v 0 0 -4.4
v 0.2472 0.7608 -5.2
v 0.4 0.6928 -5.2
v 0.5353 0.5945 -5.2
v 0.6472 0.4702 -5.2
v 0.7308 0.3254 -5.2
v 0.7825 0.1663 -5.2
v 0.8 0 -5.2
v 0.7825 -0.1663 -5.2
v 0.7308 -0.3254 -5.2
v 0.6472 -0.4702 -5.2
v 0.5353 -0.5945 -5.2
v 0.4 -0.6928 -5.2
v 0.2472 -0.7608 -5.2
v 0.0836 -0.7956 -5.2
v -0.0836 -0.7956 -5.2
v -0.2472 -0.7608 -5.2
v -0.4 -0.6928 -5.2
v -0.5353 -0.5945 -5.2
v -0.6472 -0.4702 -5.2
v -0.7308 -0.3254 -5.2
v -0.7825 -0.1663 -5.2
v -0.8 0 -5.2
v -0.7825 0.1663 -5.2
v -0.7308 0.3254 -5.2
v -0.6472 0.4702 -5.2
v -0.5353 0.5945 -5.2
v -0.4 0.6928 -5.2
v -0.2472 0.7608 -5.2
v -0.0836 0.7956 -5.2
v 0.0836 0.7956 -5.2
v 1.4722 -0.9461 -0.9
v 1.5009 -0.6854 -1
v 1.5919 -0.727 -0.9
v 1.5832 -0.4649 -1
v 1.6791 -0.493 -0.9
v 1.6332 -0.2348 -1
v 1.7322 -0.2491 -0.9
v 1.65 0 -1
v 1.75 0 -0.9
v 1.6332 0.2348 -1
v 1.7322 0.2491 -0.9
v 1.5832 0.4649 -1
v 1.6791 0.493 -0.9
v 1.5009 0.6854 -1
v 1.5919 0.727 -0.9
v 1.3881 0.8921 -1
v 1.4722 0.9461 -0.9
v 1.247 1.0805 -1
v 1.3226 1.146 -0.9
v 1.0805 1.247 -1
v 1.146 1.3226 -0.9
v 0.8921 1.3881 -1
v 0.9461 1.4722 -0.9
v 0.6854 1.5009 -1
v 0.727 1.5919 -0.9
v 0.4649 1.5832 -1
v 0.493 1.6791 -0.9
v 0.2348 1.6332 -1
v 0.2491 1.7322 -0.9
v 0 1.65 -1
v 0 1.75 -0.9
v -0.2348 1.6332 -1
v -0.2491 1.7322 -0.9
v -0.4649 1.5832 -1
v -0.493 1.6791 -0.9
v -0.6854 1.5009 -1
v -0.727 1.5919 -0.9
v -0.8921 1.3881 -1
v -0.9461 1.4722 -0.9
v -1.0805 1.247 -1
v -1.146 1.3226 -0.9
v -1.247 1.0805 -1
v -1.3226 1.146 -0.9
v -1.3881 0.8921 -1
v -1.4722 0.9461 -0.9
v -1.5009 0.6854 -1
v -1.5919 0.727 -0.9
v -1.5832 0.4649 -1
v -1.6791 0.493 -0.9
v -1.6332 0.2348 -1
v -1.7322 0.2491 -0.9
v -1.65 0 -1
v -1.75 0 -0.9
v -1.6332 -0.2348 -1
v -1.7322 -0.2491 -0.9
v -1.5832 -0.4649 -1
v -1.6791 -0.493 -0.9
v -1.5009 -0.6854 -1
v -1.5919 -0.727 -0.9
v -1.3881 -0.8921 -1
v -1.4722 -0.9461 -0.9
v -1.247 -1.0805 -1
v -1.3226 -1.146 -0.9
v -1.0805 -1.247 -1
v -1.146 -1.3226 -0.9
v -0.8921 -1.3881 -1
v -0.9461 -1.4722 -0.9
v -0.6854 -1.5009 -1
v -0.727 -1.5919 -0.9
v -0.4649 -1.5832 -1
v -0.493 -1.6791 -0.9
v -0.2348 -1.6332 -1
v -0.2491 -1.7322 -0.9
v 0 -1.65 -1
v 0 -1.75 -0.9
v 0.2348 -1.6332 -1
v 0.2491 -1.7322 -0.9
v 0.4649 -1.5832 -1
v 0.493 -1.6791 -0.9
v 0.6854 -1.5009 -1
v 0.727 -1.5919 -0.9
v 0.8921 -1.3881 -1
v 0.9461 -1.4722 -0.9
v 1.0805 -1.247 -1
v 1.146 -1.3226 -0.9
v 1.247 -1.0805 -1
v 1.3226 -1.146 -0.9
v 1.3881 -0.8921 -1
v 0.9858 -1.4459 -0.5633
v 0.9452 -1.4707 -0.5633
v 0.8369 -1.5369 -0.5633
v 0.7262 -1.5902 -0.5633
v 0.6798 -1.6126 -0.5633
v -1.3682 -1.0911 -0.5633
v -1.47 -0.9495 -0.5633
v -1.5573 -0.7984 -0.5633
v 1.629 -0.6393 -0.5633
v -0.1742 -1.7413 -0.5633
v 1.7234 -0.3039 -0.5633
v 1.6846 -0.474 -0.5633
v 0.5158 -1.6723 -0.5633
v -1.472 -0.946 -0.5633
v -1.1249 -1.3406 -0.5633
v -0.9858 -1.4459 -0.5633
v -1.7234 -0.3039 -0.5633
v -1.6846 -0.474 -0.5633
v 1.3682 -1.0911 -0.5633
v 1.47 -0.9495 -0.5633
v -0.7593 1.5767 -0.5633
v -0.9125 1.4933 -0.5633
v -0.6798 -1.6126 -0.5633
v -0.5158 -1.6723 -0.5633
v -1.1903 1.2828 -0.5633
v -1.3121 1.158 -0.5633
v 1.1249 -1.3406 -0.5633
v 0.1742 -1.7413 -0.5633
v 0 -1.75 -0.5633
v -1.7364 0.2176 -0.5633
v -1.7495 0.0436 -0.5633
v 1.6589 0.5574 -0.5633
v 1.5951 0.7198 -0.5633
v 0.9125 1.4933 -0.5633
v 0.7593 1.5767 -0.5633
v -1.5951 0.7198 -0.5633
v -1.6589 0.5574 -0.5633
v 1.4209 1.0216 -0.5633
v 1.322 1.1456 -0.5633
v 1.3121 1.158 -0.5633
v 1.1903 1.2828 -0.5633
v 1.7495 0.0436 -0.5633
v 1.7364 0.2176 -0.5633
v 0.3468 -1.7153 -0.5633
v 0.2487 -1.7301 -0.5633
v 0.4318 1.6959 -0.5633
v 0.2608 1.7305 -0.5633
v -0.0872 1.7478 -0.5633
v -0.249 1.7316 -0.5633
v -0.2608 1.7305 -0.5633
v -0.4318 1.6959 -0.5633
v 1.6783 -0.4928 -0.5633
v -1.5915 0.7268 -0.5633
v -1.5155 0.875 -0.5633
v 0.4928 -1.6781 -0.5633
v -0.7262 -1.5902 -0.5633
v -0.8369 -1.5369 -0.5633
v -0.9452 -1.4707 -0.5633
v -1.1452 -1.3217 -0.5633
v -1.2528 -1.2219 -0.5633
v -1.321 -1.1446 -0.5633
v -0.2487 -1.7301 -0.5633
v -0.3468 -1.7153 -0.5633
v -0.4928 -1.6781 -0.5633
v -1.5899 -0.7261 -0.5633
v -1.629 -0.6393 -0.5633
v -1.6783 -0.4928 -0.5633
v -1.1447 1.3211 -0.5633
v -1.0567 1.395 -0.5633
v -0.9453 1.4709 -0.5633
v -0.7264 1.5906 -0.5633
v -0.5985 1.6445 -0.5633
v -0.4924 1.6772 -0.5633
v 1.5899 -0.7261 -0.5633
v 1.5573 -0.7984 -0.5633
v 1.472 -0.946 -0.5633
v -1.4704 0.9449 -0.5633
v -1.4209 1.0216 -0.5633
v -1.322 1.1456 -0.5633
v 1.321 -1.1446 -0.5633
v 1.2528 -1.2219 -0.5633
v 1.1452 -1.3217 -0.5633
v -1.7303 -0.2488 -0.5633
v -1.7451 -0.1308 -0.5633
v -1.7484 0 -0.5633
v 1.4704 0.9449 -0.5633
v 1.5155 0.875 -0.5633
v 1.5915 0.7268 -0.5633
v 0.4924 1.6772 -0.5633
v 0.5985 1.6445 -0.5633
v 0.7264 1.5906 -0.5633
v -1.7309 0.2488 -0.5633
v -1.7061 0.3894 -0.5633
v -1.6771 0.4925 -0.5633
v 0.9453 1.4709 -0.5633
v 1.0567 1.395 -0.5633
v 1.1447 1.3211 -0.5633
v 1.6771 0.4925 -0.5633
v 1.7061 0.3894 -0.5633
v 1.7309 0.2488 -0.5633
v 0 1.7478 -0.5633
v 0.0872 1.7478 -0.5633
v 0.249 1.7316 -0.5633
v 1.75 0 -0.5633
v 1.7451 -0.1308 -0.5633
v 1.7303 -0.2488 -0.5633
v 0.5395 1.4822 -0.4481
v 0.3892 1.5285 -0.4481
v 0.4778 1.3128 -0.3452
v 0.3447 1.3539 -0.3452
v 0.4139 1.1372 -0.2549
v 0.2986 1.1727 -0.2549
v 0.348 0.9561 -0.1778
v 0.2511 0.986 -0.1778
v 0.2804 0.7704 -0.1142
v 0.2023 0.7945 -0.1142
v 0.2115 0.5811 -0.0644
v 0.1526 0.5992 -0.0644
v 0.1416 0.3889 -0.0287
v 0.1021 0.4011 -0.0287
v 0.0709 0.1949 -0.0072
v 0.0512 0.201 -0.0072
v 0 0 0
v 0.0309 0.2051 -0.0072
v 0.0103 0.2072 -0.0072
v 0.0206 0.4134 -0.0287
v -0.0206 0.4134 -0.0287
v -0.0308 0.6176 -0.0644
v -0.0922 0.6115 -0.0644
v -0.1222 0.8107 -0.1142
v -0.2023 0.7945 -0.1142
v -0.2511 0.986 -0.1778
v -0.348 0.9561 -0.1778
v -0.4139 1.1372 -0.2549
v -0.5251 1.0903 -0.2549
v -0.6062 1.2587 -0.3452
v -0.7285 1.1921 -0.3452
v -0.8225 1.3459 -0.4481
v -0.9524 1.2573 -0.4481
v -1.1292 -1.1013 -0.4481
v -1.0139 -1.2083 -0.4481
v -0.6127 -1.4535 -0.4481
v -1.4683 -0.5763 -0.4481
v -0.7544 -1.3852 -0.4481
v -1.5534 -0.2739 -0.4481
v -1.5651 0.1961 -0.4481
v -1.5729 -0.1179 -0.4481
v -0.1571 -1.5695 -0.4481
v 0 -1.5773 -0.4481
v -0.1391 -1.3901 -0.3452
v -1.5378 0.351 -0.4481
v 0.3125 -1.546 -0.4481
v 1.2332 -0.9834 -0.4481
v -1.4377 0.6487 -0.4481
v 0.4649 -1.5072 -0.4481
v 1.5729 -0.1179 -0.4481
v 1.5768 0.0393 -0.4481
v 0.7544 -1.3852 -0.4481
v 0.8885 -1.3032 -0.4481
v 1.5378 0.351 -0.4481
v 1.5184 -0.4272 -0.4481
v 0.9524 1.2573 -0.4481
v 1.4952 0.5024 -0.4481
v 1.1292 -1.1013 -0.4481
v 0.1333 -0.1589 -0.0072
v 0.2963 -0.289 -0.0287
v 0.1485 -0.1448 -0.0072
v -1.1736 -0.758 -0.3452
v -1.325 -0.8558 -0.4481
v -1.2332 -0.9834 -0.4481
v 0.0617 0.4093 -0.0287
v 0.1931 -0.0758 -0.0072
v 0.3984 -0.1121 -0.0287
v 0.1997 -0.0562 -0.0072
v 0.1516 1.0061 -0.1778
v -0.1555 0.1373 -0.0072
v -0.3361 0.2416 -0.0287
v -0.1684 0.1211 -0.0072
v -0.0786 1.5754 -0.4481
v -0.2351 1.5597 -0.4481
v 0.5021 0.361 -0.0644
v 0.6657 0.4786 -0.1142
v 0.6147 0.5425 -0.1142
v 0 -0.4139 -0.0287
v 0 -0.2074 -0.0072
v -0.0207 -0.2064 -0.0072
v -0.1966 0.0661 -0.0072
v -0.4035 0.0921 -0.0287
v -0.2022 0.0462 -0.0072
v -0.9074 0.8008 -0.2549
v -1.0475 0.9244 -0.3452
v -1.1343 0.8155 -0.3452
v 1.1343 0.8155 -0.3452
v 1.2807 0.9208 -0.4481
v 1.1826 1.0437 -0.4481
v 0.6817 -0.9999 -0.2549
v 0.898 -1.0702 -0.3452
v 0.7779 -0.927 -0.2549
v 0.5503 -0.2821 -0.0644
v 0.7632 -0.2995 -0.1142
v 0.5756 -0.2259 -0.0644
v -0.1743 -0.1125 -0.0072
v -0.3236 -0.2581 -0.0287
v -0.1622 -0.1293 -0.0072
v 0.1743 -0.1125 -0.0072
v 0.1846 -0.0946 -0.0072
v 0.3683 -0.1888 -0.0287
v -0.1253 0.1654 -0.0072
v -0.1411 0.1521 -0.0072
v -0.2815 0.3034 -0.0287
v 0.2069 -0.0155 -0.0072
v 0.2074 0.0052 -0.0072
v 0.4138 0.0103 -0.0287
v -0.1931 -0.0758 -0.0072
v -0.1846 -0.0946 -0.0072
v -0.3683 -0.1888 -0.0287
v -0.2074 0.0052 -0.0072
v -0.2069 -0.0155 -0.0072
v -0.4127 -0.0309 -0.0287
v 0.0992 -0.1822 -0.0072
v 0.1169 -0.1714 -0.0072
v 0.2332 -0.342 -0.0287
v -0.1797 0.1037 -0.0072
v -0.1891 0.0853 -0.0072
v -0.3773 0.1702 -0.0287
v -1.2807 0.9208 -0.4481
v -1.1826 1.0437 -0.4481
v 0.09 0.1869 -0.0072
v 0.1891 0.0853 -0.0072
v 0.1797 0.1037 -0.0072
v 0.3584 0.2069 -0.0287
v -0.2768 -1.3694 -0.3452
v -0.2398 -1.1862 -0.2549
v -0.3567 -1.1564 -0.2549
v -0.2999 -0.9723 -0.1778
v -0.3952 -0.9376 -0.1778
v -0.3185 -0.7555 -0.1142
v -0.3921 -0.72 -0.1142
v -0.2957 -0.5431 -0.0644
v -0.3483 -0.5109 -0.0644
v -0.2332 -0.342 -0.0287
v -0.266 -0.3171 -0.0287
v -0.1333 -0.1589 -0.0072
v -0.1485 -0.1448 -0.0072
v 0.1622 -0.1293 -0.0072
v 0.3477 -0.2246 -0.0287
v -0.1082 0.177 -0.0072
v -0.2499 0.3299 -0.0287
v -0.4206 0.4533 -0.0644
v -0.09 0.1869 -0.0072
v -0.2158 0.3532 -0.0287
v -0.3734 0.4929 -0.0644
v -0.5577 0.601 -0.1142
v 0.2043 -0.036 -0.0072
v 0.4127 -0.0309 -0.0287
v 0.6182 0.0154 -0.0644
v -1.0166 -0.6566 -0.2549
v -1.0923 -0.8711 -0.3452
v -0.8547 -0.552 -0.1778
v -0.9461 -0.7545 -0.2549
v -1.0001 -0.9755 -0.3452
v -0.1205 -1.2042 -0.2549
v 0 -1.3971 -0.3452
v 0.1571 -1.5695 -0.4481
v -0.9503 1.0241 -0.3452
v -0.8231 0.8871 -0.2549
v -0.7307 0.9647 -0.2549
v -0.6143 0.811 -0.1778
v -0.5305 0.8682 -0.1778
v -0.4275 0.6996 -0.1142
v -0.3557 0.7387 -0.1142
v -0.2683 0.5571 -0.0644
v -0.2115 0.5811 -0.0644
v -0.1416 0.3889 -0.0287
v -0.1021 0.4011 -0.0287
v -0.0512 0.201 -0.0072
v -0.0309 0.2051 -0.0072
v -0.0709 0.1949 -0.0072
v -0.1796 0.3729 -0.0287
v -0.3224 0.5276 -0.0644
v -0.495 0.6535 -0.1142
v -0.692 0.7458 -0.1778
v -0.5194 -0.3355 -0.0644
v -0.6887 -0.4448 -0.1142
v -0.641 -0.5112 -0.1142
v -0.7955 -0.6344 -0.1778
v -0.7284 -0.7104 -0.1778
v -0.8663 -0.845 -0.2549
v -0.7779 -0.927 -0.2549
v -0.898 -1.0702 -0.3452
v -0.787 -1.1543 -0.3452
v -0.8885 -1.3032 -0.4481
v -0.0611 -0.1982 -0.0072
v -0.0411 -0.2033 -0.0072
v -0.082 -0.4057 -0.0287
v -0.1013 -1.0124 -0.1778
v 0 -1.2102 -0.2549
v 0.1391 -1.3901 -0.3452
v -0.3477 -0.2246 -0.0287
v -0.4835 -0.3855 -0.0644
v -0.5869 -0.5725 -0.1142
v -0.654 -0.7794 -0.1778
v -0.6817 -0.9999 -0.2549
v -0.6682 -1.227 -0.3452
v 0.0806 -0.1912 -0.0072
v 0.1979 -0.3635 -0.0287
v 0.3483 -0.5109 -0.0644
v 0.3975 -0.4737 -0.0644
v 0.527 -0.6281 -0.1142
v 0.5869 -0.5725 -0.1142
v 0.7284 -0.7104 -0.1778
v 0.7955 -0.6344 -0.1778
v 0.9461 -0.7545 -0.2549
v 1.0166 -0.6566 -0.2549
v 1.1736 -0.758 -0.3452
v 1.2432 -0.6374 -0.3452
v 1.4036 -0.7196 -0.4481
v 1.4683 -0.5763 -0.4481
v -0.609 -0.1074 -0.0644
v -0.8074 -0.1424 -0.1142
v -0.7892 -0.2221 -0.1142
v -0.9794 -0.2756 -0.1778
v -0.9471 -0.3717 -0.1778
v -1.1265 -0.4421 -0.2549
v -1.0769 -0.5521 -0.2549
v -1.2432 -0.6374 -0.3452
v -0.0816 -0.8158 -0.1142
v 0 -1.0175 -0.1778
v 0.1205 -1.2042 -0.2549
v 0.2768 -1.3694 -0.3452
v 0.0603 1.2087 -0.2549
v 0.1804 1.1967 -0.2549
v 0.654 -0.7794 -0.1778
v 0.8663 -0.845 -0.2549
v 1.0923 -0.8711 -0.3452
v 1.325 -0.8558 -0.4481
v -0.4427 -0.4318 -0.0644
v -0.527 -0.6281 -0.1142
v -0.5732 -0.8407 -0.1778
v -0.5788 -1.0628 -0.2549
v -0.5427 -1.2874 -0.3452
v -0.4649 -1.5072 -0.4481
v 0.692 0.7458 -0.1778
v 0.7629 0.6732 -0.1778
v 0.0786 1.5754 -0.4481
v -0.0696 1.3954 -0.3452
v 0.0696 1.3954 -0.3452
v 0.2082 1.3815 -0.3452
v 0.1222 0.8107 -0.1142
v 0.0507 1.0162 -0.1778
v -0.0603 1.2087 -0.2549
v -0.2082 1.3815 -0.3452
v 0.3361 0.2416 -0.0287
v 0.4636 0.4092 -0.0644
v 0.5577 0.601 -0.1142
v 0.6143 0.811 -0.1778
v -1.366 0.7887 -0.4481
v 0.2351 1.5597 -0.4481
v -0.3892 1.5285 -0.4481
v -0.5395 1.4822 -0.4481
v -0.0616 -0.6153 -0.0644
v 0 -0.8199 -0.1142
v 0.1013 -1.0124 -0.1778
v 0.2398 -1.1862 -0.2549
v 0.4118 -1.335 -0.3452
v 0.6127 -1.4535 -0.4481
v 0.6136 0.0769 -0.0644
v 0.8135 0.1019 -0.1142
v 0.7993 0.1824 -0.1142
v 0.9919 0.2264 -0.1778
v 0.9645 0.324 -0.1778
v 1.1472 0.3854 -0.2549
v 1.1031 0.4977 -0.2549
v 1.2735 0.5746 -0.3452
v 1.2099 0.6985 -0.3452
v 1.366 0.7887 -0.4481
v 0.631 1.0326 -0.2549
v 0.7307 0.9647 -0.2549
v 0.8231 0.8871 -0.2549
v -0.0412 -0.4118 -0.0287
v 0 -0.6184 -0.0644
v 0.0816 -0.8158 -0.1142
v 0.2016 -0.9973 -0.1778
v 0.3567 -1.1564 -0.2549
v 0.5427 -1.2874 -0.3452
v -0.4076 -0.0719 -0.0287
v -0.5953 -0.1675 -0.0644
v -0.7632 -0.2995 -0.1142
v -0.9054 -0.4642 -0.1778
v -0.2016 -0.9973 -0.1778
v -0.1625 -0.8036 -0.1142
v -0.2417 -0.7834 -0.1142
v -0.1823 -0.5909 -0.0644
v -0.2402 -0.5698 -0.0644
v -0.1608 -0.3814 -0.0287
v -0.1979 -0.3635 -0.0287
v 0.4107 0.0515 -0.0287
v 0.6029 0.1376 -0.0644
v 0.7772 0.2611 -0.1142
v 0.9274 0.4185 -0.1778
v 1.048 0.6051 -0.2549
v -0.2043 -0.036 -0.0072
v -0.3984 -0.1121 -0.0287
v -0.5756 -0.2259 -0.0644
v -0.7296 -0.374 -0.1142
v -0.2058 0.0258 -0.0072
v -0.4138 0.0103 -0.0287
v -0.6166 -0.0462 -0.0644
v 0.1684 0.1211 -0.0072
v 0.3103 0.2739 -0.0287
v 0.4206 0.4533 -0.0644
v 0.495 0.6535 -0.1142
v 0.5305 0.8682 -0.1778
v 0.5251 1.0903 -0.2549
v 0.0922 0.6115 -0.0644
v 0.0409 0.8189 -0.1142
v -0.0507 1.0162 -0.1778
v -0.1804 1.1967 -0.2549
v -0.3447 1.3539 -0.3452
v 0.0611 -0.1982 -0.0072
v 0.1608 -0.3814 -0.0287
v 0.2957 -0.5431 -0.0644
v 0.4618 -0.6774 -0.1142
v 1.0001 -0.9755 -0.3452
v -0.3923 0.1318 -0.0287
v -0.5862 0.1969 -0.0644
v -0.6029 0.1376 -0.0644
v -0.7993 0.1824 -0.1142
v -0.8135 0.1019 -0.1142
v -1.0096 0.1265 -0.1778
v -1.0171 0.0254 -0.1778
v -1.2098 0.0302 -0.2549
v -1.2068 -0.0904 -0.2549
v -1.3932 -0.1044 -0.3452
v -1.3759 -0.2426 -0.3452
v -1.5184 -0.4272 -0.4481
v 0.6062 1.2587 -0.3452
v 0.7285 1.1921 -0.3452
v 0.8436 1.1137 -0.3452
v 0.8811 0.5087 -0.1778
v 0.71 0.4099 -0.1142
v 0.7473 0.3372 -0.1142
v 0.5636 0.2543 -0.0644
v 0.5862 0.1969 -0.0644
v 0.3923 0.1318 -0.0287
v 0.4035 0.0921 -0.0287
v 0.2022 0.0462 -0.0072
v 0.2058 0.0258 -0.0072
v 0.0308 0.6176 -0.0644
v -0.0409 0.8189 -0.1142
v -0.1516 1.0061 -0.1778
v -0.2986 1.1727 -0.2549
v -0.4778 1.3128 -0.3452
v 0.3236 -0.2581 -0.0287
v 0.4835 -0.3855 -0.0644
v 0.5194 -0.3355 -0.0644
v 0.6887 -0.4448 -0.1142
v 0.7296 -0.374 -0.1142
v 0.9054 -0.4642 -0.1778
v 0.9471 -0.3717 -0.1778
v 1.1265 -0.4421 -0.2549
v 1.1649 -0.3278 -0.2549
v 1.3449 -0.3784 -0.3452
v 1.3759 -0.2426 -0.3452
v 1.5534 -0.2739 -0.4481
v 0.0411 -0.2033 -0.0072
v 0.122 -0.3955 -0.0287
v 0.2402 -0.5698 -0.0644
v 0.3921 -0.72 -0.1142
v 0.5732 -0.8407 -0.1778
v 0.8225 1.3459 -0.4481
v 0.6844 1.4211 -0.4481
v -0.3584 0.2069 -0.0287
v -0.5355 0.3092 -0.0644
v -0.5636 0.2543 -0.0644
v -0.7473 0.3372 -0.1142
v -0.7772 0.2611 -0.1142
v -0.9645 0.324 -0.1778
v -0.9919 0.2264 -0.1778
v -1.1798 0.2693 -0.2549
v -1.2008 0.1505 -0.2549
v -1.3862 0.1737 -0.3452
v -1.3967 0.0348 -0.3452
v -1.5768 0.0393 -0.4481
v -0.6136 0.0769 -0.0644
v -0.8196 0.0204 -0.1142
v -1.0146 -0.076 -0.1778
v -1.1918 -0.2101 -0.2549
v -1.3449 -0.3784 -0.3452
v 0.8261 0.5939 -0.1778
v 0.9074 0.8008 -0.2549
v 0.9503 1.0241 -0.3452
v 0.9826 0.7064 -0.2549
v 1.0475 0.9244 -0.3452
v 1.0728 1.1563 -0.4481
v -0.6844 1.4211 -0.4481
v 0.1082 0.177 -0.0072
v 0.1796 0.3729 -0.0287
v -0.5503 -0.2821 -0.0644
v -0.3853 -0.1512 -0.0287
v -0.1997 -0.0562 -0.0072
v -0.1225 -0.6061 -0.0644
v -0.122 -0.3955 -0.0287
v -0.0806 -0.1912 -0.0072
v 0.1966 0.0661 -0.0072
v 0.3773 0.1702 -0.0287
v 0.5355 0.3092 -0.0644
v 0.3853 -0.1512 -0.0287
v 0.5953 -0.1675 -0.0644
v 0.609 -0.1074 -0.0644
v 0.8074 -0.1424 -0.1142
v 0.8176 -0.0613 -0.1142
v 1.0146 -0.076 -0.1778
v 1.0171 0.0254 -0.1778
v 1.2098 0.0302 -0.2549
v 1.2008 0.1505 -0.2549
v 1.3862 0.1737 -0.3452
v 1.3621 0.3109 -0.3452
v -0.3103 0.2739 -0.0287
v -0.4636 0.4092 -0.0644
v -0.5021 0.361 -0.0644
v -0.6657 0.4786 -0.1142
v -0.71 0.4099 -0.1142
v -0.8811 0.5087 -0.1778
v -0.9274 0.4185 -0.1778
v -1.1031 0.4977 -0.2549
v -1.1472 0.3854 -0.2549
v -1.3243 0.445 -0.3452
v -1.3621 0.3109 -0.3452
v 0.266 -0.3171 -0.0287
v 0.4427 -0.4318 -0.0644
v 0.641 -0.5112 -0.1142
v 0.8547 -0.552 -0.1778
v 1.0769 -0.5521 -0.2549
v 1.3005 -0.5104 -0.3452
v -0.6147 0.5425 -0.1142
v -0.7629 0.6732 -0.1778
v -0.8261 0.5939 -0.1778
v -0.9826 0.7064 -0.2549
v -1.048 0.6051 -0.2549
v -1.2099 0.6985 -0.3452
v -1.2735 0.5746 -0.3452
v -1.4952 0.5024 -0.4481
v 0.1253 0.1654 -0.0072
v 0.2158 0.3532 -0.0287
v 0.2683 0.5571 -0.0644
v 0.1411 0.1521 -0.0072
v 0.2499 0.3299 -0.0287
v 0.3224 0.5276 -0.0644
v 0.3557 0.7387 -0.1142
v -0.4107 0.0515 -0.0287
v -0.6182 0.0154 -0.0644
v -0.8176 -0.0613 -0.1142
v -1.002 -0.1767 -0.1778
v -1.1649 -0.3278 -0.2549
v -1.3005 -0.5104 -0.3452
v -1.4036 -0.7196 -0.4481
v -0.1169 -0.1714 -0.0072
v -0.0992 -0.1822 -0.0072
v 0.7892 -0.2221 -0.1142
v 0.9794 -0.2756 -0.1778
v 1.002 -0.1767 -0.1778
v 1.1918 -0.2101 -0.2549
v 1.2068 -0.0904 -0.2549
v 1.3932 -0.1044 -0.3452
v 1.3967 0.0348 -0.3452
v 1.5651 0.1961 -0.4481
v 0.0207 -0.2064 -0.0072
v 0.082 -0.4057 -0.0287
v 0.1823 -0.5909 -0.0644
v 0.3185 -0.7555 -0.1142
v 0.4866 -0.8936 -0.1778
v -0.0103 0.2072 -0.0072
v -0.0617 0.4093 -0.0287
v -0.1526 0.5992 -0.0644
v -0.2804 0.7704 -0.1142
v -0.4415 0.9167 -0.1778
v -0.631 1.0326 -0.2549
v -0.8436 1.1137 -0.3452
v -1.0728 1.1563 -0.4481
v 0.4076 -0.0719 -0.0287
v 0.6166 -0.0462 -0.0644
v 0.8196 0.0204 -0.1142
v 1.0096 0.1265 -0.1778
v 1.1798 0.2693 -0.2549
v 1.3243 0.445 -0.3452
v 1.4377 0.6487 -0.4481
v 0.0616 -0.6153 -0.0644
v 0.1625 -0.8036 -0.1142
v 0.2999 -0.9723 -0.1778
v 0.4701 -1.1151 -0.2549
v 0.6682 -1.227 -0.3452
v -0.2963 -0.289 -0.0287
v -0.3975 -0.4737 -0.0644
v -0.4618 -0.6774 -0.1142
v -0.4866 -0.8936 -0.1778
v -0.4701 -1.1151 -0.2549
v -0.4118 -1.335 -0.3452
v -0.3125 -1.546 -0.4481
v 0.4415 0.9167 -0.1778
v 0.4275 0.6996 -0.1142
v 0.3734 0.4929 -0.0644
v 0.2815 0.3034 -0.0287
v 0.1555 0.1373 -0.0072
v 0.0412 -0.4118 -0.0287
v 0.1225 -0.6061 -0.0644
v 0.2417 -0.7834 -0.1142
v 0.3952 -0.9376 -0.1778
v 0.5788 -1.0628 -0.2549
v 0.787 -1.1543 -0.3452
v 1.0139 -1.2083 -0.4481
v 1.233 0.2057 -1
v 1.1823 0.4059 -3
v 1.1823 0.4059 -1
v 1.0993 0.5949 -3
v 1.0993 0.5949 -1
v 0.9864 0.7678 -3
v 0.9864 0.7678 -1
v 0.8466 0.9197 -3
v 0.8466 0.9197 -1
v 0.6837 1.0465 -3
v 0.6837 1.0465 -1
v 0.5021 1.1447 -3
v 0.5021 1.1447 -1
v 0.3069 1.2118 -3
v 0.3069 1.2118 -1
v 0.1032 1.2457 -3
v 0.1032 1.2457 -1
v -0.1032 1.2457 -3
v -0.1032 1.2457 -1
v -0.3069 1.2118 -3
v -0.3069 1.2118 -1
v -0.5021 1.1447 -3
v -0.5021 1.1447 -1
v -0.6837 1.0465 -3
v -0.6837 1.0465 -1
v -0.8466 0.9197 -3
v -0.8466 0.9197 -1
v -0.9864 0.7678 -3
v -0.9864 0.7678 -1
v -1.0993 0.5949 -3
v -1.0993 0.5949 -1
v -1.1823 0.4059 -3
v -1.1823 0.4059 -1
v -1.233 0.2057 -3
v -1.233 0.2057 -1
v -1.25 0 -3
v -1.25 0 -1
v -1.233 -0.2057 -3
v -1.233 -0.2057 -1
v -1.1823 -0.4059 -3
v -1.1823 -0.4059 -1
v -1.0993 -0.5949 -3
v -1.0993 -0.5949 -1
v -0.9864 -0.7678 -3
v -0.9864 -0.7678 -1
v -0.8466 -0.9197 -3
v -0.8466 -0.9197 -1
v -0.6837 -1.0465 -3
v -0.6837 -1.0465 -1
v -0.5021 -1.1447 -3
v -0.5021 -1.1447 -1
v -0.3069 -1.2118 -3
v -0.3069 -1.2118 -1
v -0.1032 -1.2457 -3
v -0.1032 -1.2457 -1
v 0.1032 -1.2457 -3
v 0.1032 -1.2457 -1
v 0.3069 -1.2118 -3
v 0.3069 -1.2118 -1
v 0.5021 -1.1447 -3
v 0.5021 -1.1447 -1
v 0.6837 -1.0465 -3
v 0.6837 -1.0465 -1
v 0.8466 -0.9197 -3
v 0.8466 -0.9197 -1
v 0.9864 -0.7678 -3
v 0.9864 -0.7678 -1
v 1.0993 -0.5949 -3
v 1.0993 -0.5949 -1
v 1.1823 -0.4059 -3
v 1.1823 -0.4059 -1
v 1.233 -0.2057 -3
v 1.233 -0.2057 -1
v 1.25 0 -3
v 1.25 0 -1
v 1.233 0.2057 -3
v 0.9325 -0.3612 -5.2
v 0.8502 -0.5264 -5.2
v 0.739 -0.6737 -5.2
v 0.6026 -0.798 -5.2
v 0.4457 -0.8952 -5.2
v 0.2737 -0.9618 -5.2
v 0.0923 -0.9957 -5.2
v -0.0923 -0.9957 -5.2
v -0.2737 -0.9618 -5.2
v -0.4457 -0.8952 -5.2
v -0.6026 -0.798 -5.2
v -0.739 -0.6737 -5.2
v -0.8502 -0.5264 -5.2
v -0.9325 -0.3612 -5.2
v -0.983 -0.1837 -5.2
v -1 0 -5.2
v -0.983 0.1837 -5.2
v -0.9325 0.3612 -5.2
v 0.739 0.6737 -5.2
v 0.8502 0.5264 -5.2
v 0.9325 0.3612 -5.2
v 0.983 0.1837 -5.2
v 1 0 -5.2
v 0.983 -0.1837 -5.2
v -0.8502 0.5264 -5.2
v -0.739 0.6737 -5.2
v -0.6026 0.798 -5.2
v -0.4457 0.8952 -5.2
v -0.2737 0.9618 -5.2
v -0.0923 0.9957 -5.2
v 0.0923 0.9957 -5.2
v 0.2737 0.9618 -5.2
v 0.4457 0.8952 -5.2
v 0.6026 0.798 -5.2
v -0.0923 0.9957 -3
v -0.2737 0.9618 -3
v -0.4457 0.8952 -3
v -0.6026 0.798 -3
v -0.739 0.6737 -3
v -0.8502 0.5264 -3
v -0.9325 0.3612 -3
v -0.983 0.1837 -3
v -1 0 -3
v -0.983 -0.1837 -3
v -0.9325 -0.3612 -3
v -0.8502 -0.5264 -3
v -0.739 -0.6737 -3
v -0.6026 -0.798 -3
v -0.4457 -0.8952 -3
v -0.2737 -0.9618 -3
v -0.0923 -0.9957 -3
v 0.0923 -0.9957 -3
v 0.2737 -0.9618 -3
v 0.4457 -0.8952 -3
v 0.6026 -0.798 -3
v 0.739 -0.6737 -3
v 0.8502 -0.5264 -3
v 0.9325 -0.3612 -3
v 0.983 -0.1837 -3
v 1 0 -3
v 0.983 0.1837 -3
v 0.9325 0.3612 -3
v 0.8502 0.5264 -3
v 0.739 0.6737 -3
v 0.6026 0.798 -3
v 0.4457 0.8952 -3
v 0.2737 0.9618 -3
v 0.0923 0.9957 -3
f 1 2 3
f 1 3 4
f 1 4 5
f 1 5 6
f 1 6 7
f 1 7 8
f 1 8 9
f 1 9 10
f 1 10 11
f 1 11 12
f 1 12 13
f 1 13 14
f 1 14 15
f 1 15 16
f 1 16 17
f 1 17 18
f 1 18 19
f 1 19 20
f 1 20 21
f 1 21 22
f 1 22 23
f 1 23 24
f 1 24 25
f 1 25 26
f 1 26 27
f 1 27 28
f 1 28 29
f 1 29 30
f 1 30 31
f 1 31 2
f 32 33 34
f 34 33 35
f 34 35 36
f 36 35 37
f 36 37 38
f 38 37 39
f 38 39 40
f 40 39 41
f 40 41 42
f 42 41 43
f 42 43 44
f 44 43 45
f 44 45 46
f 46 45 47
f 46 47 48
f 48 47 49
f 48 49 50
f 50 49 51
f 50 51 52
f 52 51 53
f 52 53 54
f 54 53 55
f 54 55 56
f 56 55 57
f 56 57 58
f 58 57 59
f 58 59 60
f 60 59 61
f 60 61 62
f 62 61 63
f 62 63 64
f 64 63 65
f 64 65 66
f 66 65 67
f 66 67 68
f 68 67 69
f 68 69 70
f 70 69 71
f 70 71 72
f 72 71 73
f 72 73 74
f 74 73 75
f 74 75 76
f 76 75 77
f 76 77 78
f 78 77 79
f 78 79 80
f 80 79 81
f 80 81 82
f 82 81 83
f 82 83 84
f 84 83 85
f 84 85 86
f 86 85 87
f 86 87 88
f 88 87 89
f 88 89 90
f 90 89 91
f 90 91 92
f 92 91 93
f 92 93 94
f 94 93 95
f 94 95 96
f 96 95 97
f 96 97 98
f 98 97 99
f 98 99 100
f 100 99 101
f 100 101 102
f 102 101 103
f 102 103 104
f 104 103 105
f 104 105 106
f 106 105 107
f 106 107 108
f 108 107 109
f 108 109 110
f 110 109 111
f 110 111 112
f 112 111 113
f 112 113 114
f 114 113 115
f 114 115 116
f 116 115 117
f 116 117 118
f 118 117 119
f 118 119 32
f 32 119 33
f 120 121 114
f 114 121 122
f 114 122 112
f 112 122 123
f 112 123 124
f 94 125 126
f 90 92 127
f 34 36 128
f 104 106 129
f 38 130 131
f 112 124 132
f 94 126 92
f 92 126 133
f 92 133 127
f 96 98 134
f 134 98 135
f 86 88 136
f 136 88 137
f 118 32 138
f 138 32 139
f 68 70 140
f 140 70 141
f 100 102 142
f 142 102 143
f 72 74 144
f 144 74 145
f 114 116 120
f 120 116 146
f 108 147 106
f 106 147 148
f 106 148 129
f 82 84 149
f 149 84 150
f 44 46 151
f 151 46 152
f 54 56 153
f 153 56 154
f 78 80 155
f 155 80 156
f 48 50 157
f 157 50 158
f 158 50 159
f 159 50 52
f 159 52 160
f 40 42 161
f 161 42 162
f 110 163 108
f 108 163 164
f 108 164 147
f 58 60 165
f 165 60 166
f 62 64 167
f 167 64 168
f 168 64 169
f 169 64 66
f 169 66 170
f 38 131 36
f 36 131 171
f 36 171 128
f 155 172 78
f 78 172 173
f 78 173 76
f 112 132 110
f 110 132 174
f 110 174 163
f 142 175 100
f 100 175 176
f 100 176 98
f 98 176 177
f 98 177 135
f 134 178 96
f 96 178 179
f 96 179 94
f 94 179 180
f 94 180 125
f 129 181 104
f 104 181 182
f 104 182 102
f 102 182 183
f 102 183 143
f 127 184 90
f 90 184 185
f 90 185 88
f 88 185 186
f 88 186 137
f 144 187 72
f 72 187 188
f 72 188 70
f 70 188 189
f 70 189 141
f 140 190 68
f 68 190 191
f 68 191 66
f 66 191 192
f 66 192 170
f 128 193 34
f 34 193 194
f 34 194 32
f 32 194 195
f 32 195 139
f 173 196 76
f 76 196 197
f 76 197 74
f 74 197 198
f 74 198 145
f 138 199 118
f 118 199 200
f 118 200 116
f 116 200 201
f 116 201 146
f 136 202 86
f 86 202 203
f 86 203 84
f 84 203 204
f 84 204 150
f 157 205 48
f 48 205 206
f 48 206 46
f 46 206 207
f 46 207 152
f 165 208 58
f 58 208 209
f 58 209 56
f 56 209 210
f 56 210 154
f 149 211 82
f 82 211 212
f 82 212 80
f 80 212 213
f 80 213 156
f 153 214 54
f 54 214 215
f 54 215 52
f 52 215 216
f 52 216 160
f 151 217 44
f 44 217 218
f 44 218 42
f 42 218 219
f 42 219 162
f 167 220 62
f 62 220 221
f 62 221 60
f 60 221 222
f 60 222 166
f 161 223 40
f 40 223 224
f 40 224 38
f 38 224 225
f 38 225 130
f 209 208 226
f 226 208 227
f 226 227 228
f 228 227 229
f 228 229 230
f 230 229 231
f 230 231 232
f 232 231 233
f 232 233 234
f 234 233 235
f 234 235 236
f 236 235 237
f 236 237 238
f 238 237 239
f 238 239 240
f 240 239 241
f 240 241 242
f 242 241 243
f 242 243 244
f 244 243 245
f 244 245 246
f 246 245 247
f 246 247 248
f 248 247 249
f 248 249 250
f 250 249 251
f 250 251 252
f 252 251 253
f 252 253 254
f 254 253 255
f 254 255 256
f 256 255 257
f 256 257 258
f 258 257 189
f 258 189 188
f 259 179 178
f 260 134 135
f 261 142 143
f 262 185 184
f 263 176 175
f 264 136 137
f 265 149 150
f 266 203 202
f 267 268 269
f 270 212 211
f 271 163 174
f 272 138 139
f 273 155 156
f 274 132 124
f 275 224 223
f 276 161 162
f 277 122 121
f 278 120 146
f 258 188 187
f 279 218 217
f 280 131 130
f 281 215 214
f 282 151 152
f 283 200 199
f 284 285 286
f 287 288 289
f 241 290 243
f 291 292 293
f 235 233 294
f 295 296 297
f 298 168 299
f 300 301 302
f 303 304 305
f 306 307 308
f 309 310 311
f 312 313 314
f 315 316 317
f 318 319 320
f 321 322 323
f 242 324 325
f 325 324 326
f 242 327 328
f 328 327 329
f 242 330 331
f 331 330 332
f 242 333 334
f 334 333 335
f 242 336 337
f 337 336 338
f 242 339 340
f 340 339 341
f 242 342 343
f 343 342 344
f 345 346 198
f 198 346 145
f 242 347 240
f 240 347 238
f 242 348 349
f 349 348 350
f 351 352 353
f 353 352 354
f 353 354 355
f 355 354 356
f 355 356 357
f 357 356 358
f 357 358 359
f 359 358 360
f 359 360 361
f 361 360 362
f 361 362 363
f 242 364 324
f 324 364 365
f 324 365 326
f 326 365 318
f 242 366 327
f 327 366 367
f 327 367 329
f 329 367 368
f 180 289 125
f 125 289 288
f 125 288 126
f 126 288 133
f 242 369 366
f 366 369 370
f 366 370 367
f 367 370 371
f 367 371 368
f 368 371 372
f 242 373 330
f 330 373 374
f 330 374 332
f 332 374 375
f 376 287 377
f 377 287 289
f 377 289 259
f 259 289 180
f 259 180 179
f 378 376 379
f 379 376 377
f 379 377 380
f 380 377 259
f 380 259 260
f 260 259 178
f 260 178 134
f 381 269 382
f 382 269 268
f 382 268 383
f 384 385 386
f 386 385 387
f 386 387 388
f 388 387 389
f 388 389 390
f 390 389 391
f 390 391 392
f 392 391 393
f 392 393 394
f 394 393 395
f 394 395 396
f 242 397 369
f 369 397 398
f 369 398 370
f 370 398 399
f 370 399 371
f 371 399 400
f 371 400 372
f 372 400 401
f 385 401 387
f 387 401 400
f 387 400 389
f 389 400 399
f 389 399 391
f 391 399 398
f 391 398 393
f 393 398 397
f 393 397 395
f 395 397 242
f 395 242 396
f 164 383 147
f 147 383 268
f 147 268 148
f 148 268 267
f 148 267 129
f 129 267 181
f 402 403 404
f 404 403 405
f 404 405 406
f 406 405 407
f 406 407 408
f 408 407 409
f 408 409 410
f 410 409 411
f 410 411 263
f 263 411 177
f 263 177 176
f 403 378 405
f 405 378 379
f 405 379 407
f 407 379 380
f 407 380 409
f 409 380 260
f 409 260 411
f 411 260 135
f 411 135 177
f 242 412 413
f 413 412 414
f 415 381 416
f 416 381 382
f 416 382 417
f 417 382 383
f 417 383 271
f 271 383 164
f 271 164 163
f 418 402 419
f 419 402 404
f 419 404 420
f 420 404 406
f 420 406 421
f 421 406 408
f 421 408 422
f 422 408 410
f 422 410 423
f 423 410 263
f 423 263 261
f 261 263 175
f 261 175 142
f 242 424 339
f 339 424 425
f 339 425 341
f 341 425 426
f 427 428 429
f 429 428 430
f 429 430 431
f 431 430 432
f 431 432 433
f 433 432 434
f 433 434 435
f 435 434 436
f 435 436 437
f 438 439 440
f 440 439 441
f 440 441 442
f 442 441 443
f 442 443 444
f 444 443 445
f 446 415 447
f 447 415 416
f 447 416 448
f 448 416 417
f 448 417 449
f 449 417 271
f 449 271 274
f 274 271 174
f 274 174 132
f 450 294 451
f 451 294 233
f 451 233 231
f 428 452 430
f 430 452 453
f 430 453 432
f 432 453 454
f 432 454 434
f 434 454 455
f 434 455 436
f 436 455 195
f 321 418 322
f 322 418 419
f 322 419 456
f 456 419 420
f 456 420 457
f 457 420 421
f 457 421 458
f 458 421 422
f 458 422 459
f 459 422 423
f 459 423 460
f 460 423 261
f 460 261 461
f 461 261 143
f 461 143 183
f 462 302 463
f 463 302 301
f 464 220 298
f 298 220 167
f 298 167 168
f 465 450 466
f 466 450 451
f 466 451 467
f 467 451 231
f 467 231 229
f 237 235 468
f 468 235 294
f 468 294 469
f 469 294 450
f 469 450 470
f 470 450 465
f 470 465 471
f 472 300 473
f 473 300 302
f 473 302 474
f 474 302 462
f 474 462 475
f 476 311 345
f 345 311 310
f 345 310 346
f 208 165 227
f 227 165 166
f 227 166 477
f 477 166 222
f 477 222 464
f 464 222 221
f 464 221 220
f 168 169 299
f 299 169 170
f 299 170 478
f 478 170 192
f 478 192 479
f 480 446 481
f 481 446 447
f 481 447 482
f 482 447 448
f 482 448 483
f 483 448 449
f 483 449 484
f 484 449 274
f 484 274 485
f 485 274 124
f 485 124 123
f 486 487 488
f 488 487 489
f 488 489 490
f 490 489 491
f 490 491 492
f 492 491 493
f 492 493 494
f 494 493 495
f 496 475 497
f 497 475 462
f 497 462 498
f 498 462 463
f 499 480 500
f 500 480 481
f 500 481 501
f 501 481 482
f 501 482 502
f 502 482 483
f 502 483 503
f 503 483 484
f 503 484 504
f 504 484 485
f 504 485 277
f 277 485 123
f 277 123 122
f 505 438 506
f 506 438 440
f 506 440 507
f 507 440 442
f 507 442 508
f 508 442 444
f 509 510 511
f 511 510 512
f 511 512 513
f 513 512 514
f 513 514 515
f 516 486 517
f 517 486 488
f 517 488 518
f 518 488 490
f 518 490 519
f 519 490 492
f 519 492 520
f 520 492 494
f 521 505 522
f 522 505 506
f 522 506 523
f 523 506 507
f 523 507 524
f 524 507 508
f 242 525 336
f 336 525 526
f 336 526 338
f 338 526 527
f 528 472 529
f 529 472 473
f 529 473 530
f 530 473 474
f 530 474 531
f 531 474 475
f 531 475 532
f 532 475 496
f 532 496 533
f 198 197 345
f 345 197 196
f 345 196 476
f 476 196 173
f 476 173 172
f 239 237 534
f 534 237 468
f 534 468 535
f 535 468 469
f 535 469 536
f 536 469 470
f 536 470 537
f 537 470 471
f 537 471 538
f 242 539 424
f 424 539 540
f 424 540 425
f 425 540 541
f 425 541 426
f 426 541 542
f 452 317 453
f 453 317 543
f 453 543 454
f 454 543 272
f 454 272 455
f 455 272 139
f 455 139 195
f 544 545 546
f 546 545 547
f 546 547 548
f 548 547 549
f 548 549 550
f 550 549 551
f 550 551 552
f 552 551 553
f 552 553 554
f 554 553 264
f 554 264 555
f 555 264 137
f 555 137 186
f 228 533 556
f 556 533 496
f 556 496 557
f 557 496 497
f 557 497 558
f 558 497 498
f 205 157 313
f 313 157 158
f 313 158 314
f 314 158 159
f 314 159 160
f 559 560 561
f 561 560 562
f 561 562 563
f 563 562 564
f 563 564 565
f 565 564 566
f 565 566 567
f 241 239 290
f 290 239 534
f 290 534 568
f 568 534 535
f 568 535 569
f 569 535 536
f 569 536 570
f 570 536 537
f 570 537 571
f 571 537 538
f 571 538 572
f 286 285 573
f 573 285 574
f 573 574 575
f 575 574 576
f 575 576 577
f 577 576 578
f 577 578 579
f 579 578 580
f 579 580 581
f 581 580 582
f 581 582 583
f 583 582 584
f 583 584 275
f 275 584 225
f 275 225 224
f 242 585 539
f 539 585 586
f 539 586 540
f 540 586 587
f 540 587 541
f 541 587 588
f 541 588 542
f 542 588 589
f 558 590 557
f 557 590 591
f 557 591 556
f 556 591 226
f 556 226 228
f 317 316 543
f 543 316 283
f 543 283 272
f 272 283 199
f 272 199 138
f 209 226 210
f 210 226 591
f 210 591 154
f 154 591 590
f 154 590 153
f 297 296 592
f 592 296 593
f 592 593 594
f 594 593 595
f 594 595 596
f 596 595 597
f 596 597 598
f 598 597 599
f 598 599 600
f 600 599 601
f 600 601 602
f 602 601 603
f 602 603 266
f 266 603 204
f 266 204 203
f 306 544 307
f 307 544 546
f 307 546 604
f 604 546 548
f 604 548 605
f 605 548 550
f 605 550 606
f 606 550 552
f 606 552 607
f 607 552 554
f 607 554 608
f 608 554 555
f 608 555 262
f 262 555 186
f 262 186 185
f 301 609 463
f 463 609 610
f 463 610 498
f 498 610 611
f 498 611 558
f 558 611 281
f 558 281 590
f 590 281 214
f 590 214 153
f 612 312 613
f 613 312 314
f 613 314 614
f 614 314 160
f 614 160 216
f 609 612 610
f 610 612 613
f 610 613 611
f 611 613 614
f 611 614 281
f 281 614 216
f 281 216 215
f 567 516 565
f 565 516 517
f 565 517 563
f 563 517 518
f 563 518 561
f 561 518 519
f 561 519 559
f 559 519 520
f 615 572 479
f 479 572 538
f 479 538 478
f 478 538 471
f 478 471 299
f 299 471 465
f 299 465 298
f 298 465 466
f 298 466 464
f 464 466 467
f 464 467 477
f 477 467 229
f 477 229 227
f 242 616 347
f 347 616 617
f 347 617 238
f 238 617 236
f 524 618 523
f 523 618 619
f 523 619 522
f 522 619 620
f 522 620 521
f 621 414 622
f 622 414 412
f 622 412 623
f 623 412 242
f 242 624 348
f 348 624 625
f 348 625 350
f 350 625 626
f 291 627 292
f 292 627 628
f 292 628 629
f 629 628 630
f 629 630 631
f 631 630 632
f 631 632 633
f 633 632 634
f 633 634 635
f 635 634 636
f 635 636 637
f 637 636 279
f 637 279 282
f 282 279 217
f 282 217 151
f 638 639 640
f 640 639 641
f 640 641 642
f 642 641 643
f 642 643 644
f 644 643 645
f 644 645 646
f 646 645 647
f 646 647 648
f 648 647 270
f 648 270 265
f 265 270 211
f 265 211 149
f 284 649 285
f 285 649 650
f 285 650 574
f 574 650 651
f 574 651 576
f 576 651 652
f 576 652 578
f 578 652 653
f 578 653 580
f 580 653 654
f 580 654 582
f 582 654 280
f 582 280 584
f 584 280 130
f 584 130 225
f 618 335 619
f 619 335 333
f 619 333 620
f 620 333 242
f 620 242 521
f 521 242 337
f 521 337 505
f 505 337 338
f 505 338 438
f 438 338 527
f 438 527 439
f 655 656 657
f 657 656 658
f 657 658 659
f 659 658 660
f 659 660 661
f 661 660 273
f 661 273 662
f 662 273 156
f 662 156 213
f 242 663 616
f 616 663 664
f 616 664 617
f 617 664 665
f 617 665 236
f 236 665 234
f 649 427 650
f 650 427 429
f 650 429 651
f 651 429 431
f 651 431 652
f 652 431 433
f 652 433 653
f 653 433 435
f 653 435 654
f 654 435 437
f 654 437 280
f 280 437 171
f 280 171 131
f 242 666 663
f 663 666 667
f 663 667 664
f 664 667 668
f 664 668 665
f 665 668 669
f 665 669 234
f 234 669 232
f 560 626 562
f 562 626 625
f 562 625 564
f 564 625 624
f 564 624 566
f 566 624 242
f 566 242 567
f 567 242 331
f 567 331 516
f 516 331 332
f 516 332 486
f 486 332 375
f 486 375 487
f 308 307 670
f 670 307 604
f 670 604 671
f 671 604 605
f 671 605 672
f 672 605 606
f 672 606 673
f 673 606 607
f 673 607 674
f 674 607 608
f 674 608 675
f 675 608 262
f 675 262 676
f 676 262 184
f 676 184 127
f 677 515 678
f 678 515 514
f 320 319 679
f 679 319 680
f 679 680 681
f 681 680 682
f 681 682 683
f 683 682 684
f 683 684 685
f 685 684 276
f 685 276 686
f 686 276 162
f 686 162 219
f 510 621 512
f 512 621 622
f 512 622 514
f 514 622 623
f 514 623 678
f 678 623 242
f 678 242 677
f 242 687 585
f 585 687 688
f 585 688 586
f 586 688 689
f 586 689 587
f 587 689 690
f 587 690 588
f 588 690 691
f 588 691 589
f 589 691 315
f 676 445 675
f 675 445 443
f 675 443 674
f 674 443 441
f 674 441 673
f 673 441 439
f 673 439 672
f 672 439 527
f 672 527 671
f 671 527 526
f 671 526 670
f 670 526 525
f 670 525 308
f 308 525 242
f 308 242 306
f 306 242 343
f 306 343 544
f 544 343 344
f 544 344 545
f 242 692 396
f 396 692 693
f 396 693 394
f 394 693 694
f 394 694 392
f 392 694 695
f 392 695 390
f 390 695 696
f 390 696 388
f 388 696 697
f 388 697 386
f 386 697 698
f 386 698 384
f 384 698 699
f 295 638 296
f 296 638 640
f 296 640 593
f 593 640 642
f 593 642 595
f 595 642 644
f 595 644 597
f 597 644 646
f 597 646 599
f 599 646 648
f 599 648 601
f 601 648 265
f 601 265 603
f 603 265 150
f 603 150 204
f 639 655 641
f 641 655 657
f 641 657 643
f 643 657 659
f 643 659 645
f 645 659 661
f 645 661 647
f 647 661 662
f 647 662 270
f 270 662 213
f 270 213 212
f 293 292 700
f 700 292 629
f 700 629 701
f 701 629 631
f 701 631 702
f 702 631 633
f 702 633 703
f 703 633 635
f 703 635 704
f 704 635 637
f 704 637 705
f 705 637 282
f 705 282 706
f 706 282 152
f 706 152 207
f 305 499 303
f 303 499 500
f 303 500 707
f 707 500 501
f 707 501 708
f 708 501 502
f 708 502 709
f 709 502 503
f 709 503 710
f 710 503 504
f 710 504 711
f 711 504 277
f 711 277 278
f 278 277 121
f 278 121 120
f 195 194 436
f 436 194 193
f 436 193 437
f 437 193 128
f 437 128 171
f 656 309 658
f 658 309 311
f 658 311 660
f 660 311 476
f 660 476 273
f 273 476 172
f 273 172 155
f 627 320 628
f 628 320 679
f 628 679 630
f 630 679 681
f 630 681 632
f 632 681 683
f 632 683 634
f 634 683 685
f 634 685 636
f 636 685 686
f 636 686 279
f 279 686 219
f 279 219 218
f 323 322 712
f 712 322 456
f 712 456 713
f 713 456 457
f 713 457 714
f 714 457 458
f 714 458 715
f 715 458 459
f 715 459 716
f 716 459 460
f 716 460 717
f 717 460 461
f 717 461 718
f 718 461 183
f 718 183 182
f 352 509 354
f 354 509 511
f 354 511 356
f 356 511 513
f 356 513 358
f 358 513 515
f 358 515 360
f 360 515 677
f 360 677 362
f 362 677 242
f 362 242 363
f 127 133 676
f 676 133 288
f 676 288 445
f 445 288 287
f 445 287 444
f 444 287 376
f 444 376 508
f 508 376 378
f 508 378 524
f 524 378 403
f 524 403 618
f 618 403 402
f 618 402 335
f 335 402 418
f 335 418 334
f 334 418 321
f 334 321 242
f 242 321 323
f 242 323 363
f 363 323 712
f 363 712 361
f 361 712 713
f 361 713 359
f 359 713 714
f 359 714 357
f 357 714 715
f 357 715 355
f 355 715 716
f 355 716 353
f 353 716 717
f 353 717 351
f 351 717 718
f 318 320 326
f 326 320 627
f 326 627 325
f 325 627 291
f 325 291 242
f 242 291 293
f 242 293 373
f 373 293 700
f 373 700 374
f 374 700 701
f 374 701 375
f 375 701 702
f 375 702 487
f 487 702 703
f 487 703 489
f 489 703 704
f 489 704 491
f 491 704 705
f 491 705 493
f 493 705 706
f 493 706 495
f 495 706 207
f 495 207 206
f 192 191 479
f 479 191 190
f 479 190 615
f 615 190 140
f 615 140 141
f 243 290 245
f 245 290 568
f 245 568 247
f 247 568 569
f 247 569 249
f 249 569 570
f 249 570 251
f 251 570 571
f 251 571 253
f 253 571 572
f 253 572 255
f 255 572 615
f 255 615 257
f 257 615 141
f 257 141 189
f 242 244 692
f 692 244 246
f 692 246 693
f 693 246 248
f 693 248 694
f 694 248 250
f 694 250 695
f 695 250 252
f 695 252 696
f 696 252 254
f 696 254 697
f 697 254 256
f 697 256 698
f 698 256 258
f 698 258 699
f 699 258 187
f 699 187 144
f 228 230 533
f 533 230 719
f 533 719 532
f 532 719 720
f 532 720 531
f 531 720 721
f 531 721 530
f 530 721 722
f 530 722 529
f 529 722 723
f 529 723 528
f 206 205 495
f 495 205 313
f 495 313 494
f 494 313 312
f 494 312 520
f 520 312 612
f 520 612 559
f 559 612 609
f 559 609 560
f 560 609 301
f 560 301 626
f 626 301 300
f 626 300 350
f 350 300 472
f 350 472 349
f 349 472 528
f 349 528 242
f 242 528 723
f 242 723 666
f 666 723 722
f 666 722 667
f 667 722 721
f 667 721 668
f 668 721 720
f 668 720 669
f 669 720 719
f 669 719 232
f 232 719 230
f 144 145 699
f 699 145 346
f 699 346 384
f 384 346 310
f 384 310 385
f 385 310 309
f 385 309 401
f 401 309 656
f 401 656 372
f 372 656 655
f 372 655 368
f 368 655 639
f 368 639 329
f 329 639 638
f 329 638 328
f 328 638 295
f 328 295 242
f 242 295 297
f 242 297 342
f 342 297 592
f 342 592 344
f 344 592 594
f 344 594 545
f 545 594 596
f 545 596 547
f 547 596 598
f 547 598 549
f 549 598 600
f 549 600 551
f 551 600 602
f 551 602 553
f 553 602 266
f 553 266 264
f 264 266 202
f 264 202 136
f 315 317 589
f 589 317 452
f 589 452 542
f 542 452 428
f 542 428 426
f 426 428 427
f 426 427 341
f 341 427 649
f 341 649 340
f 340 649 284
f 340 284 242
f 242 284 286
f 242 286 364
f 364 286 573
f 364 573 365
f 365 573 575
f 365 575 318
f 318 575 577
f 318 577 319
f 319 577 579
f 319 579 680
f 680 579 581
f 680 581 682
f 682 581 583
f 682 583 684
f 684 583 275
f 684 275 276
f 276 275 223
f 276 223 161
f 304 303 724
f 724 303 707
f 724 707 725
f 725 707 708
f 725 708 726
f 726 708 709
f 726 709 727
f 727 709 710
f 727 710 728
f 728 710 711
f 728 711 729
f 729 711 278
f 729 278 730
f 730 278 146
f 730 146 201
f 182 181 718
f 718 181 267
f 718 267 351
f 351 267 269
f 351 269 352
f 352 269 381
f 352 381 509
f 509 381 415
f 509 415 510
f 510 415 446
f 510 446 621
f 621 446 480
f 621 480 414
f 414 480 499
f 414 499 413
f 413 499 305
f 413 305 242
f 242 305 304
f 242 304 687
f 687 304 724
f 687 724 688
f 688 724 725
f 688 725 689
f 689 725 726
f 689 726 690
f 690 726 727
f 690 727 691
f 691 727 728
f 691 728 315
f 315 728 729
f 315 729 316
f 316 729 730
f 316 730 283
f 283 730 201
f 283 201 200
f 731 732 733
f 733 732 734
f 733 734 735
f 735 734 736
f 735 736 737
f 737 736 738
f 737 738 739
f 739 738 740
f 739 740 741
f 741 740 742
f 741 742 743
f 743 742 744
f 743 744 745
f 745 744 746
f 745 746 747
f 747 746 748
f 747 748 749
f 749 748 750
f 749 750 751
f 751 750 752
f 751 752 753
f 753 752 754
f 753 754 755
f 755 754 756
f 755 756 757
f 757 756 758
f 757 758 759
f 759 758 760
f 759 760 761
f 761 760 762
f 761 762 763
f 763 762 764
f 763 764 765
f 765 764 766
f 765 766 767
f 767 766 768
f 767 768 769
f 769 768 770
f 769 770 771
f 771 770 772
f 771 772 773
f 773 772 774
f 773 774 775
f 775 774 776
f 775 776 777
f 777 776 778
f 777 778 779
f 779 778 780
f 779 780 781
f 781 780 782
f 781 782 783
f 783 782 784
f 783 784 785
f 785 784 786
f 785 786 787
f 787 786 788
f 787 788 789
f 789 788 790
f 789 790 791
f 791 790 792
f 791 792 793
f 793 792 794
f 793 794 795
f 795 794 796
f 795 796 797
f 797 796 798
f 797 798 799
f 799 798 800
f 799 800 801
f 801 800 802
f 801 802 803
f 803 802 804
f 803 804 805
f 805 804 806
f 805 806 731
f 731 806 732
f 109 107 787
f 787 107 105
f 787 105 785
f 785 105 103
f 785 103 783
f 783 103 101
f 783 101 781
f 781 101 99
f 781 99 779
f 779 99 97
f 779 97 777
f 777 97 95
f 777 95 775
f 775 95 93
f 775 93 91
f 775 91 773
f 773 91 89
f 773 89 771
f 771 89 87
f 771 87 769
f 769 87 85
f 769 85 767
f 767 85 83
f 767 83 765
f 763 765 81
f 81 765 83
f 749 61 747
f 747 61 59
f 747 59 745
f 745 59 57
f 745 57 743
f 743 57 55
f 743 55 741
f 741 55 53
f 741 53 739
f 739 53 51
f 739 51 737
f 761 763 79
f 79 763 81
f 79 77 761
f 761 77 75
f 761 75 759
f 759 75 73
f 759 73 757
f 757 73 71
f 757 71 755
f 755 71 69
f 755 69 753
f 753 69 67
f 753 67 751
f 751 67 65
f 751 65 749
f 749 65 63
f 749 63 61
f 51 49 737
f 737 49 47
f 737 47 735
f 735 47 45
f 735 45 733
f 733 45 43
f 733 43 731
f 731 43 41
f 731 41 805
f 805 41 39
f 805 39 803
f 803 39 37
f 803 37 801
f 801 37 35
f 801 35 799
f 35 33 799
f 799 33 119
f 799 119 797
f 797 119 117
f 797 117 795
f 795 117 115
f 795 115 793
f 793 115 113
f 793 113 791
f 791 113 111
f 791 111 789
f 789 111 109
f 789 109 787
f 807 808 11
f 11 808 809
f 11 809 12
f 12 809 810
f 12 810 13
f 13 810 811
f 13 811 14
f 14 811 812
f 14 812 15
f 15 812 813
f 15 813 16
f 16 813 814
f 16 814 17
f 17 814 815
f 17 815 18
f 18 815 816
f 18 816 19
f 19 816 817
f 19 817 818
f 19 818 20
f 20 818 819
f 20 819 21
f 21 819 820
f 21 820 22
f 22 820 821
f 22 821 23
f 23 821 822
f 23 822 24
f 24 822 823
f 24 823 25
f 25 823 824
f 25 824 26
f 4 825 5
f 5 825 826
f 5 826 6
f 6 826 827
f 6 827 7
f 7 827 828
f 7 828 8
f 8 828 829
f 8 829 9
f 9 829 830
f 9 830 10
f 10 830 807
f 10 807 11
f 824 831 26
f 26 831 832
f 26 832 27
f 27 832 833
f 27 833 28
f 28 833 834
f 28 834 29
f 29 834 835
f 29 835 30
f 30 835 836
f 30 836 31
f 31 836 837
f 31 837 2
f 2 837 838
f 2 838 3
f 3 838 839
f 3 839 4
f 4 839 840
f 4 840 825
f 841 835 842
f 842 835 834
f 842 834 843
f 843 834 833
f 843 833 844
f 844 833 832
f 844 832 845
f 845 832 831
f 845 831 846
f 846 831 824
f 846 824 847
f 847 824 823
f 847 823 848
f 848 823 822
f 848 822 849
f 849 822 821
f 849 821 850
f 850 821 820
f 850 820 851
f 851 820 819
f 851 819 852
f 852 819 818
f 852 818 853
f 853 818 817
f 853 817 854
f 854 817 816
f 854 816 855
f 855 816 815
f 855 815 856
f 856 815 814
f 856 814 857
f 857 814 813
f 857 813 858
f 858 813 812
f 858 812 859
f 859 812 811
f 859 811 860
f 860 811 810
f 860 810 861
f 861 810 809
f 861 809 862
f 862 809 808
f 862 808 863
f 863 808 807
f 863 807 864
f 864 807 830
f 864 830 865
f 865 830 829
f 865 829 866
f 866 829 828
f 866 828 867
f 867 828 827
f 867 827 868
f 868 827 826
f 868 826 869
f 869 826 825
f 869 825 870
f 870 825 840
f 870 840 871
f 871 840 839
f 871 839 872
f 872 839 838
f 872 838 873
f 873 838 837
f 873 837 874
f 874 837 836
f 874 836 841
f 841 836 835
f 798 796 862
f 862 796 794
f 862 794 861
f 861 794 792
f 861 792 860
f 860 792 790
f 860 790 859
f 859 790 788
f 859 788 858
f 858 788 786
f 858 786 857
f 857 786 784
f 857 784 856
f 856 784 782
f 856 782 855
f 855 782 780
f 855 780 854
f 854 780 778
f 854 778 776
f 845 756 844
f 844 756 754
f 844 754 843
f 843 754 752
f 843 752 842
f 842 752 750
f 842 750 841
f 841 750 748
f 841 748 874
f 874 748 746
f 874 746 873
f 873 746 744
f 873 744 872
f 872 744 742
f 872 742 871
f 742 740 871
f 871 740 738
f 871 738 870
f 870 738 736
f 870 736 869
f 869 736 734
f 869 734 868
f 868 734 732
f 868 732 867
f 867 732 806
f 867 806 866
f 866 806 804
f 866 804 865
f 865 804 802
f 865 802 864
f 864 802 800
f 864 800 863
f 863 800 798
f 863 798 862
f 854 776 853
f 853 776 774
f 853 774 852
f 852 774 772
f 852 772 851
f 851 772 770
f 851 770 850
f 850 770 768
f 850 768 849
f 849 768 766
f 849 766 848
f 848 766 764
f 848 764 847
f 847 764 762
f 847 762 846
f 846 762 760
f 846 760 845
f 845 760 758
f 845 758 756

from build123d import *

# Parameters (mm, degrees)
SKETCH2_R           = 1.75
BOSS_EXTRUDE1_DEPTH = 5.2
SKETCH4_OUTSIDE_W   = 6.936
SKETCH4_OUTSIDE_H   = 6.936
SKETCH4_OUTSIDE_R   = 1
CUT_EXTRUDE1_DEPTH  = 2.2
SKETCH5_OUTSIDE_W   = 6.936
SKETCH5_OUTSIDE_H   = 6.936
SKETCH5_OUTSIDE_R   = 1.25
CUT_EXTRUDE2_DEPTH  = 2
CHAMFER1_SIZE       = 0.1


with BuildPart() as part:
    # Sketch2 → Boss-Extrude1 (new body)
    with BuildSketch(Plane.XY):
        Circle(SKETCH2_R)
    extrude(amount=-BOSS_EXTRUDE1_DEPTH)

    # Sketch3 → Cut-Revolve1 (revolve, cut)
    with BuildSketch(Plane(origin=(0, 0, 0), x_dir=(0, 0, -1), z_dir=(1, 0, 0))):
        with BuildLine():
            Line((0, 0), (-0.5, 0))
            Line((-0.5, 0), (-0.5, 1.75))
            Line((-0.5, 1.75), (0.563301414, 1.75))
            ThreePointArc((0.563301414, 1.75), (0.144295555, 0.919212772), (0, 0))
        make_face()
    revolve(axis=Axis((0, 0, 0), (0, 0, -1)), mode=Mode.SUBTRACT)

    # Sketch4 outside → Cut-Extrude1 (cut)
    with BuildSketch(Plane(origin=(0, 0, -5.2), x_dir=(-1, 0, 0), z_dir=(0, 0, -1))):
        Rectangle(SKETCH4_OUTSIDE_W, SKETCH4_OUTSIDE_H)
        Circle(SKETCH4_OUTSIDE_R, mode=Mode.SUBTRACT)
    extrude(amount=-CUT_EXTRUDE1_DEPTH, mode=Mode.SUBTRACT)

    # Sketch5 outside → Cut-Extrude2 (cut)
    with BuildSketch(Plane(origin=(0, 0, -3), x_dir=(-1, 0, 0), z_dir=(0, 0, -1))):
        Rectangle(SKETCH5_OUTSIDE_W, SKETCH5_OUTSIDE_H)
        Circle(SKETCH5_OUTSIDE_R, mode=Mode.SUBTRACT)
    extrude(amount=-CUT_EXTRUDE2_DEPTH, mode=Mode.SUBTRACT)

    # Chamfer1
    chamfer1_edges = [part.edges().sort_by_distance(p)[0] for p in [
        (-1.75, 0, -1),
    ]]
    chamfer(chamfer1_edges, length=CHAMFER1_SIZE)

    # Sketch6 → Cut-Revolve2 (revolve, cut)
    with BuildSketch(Plane(origin=(0, 0, 0), x_dir=(0, 0, -1), z_dir=(1, 0, 0))):
        Polygon((5.2, 0.8), (4.4, 0), (5.2, 0), align=None)
    revolve(axis=Axis((0, 0, 0), (0, 0, -1)), mode=Mode.SUBTRACT)


solid = part.part
